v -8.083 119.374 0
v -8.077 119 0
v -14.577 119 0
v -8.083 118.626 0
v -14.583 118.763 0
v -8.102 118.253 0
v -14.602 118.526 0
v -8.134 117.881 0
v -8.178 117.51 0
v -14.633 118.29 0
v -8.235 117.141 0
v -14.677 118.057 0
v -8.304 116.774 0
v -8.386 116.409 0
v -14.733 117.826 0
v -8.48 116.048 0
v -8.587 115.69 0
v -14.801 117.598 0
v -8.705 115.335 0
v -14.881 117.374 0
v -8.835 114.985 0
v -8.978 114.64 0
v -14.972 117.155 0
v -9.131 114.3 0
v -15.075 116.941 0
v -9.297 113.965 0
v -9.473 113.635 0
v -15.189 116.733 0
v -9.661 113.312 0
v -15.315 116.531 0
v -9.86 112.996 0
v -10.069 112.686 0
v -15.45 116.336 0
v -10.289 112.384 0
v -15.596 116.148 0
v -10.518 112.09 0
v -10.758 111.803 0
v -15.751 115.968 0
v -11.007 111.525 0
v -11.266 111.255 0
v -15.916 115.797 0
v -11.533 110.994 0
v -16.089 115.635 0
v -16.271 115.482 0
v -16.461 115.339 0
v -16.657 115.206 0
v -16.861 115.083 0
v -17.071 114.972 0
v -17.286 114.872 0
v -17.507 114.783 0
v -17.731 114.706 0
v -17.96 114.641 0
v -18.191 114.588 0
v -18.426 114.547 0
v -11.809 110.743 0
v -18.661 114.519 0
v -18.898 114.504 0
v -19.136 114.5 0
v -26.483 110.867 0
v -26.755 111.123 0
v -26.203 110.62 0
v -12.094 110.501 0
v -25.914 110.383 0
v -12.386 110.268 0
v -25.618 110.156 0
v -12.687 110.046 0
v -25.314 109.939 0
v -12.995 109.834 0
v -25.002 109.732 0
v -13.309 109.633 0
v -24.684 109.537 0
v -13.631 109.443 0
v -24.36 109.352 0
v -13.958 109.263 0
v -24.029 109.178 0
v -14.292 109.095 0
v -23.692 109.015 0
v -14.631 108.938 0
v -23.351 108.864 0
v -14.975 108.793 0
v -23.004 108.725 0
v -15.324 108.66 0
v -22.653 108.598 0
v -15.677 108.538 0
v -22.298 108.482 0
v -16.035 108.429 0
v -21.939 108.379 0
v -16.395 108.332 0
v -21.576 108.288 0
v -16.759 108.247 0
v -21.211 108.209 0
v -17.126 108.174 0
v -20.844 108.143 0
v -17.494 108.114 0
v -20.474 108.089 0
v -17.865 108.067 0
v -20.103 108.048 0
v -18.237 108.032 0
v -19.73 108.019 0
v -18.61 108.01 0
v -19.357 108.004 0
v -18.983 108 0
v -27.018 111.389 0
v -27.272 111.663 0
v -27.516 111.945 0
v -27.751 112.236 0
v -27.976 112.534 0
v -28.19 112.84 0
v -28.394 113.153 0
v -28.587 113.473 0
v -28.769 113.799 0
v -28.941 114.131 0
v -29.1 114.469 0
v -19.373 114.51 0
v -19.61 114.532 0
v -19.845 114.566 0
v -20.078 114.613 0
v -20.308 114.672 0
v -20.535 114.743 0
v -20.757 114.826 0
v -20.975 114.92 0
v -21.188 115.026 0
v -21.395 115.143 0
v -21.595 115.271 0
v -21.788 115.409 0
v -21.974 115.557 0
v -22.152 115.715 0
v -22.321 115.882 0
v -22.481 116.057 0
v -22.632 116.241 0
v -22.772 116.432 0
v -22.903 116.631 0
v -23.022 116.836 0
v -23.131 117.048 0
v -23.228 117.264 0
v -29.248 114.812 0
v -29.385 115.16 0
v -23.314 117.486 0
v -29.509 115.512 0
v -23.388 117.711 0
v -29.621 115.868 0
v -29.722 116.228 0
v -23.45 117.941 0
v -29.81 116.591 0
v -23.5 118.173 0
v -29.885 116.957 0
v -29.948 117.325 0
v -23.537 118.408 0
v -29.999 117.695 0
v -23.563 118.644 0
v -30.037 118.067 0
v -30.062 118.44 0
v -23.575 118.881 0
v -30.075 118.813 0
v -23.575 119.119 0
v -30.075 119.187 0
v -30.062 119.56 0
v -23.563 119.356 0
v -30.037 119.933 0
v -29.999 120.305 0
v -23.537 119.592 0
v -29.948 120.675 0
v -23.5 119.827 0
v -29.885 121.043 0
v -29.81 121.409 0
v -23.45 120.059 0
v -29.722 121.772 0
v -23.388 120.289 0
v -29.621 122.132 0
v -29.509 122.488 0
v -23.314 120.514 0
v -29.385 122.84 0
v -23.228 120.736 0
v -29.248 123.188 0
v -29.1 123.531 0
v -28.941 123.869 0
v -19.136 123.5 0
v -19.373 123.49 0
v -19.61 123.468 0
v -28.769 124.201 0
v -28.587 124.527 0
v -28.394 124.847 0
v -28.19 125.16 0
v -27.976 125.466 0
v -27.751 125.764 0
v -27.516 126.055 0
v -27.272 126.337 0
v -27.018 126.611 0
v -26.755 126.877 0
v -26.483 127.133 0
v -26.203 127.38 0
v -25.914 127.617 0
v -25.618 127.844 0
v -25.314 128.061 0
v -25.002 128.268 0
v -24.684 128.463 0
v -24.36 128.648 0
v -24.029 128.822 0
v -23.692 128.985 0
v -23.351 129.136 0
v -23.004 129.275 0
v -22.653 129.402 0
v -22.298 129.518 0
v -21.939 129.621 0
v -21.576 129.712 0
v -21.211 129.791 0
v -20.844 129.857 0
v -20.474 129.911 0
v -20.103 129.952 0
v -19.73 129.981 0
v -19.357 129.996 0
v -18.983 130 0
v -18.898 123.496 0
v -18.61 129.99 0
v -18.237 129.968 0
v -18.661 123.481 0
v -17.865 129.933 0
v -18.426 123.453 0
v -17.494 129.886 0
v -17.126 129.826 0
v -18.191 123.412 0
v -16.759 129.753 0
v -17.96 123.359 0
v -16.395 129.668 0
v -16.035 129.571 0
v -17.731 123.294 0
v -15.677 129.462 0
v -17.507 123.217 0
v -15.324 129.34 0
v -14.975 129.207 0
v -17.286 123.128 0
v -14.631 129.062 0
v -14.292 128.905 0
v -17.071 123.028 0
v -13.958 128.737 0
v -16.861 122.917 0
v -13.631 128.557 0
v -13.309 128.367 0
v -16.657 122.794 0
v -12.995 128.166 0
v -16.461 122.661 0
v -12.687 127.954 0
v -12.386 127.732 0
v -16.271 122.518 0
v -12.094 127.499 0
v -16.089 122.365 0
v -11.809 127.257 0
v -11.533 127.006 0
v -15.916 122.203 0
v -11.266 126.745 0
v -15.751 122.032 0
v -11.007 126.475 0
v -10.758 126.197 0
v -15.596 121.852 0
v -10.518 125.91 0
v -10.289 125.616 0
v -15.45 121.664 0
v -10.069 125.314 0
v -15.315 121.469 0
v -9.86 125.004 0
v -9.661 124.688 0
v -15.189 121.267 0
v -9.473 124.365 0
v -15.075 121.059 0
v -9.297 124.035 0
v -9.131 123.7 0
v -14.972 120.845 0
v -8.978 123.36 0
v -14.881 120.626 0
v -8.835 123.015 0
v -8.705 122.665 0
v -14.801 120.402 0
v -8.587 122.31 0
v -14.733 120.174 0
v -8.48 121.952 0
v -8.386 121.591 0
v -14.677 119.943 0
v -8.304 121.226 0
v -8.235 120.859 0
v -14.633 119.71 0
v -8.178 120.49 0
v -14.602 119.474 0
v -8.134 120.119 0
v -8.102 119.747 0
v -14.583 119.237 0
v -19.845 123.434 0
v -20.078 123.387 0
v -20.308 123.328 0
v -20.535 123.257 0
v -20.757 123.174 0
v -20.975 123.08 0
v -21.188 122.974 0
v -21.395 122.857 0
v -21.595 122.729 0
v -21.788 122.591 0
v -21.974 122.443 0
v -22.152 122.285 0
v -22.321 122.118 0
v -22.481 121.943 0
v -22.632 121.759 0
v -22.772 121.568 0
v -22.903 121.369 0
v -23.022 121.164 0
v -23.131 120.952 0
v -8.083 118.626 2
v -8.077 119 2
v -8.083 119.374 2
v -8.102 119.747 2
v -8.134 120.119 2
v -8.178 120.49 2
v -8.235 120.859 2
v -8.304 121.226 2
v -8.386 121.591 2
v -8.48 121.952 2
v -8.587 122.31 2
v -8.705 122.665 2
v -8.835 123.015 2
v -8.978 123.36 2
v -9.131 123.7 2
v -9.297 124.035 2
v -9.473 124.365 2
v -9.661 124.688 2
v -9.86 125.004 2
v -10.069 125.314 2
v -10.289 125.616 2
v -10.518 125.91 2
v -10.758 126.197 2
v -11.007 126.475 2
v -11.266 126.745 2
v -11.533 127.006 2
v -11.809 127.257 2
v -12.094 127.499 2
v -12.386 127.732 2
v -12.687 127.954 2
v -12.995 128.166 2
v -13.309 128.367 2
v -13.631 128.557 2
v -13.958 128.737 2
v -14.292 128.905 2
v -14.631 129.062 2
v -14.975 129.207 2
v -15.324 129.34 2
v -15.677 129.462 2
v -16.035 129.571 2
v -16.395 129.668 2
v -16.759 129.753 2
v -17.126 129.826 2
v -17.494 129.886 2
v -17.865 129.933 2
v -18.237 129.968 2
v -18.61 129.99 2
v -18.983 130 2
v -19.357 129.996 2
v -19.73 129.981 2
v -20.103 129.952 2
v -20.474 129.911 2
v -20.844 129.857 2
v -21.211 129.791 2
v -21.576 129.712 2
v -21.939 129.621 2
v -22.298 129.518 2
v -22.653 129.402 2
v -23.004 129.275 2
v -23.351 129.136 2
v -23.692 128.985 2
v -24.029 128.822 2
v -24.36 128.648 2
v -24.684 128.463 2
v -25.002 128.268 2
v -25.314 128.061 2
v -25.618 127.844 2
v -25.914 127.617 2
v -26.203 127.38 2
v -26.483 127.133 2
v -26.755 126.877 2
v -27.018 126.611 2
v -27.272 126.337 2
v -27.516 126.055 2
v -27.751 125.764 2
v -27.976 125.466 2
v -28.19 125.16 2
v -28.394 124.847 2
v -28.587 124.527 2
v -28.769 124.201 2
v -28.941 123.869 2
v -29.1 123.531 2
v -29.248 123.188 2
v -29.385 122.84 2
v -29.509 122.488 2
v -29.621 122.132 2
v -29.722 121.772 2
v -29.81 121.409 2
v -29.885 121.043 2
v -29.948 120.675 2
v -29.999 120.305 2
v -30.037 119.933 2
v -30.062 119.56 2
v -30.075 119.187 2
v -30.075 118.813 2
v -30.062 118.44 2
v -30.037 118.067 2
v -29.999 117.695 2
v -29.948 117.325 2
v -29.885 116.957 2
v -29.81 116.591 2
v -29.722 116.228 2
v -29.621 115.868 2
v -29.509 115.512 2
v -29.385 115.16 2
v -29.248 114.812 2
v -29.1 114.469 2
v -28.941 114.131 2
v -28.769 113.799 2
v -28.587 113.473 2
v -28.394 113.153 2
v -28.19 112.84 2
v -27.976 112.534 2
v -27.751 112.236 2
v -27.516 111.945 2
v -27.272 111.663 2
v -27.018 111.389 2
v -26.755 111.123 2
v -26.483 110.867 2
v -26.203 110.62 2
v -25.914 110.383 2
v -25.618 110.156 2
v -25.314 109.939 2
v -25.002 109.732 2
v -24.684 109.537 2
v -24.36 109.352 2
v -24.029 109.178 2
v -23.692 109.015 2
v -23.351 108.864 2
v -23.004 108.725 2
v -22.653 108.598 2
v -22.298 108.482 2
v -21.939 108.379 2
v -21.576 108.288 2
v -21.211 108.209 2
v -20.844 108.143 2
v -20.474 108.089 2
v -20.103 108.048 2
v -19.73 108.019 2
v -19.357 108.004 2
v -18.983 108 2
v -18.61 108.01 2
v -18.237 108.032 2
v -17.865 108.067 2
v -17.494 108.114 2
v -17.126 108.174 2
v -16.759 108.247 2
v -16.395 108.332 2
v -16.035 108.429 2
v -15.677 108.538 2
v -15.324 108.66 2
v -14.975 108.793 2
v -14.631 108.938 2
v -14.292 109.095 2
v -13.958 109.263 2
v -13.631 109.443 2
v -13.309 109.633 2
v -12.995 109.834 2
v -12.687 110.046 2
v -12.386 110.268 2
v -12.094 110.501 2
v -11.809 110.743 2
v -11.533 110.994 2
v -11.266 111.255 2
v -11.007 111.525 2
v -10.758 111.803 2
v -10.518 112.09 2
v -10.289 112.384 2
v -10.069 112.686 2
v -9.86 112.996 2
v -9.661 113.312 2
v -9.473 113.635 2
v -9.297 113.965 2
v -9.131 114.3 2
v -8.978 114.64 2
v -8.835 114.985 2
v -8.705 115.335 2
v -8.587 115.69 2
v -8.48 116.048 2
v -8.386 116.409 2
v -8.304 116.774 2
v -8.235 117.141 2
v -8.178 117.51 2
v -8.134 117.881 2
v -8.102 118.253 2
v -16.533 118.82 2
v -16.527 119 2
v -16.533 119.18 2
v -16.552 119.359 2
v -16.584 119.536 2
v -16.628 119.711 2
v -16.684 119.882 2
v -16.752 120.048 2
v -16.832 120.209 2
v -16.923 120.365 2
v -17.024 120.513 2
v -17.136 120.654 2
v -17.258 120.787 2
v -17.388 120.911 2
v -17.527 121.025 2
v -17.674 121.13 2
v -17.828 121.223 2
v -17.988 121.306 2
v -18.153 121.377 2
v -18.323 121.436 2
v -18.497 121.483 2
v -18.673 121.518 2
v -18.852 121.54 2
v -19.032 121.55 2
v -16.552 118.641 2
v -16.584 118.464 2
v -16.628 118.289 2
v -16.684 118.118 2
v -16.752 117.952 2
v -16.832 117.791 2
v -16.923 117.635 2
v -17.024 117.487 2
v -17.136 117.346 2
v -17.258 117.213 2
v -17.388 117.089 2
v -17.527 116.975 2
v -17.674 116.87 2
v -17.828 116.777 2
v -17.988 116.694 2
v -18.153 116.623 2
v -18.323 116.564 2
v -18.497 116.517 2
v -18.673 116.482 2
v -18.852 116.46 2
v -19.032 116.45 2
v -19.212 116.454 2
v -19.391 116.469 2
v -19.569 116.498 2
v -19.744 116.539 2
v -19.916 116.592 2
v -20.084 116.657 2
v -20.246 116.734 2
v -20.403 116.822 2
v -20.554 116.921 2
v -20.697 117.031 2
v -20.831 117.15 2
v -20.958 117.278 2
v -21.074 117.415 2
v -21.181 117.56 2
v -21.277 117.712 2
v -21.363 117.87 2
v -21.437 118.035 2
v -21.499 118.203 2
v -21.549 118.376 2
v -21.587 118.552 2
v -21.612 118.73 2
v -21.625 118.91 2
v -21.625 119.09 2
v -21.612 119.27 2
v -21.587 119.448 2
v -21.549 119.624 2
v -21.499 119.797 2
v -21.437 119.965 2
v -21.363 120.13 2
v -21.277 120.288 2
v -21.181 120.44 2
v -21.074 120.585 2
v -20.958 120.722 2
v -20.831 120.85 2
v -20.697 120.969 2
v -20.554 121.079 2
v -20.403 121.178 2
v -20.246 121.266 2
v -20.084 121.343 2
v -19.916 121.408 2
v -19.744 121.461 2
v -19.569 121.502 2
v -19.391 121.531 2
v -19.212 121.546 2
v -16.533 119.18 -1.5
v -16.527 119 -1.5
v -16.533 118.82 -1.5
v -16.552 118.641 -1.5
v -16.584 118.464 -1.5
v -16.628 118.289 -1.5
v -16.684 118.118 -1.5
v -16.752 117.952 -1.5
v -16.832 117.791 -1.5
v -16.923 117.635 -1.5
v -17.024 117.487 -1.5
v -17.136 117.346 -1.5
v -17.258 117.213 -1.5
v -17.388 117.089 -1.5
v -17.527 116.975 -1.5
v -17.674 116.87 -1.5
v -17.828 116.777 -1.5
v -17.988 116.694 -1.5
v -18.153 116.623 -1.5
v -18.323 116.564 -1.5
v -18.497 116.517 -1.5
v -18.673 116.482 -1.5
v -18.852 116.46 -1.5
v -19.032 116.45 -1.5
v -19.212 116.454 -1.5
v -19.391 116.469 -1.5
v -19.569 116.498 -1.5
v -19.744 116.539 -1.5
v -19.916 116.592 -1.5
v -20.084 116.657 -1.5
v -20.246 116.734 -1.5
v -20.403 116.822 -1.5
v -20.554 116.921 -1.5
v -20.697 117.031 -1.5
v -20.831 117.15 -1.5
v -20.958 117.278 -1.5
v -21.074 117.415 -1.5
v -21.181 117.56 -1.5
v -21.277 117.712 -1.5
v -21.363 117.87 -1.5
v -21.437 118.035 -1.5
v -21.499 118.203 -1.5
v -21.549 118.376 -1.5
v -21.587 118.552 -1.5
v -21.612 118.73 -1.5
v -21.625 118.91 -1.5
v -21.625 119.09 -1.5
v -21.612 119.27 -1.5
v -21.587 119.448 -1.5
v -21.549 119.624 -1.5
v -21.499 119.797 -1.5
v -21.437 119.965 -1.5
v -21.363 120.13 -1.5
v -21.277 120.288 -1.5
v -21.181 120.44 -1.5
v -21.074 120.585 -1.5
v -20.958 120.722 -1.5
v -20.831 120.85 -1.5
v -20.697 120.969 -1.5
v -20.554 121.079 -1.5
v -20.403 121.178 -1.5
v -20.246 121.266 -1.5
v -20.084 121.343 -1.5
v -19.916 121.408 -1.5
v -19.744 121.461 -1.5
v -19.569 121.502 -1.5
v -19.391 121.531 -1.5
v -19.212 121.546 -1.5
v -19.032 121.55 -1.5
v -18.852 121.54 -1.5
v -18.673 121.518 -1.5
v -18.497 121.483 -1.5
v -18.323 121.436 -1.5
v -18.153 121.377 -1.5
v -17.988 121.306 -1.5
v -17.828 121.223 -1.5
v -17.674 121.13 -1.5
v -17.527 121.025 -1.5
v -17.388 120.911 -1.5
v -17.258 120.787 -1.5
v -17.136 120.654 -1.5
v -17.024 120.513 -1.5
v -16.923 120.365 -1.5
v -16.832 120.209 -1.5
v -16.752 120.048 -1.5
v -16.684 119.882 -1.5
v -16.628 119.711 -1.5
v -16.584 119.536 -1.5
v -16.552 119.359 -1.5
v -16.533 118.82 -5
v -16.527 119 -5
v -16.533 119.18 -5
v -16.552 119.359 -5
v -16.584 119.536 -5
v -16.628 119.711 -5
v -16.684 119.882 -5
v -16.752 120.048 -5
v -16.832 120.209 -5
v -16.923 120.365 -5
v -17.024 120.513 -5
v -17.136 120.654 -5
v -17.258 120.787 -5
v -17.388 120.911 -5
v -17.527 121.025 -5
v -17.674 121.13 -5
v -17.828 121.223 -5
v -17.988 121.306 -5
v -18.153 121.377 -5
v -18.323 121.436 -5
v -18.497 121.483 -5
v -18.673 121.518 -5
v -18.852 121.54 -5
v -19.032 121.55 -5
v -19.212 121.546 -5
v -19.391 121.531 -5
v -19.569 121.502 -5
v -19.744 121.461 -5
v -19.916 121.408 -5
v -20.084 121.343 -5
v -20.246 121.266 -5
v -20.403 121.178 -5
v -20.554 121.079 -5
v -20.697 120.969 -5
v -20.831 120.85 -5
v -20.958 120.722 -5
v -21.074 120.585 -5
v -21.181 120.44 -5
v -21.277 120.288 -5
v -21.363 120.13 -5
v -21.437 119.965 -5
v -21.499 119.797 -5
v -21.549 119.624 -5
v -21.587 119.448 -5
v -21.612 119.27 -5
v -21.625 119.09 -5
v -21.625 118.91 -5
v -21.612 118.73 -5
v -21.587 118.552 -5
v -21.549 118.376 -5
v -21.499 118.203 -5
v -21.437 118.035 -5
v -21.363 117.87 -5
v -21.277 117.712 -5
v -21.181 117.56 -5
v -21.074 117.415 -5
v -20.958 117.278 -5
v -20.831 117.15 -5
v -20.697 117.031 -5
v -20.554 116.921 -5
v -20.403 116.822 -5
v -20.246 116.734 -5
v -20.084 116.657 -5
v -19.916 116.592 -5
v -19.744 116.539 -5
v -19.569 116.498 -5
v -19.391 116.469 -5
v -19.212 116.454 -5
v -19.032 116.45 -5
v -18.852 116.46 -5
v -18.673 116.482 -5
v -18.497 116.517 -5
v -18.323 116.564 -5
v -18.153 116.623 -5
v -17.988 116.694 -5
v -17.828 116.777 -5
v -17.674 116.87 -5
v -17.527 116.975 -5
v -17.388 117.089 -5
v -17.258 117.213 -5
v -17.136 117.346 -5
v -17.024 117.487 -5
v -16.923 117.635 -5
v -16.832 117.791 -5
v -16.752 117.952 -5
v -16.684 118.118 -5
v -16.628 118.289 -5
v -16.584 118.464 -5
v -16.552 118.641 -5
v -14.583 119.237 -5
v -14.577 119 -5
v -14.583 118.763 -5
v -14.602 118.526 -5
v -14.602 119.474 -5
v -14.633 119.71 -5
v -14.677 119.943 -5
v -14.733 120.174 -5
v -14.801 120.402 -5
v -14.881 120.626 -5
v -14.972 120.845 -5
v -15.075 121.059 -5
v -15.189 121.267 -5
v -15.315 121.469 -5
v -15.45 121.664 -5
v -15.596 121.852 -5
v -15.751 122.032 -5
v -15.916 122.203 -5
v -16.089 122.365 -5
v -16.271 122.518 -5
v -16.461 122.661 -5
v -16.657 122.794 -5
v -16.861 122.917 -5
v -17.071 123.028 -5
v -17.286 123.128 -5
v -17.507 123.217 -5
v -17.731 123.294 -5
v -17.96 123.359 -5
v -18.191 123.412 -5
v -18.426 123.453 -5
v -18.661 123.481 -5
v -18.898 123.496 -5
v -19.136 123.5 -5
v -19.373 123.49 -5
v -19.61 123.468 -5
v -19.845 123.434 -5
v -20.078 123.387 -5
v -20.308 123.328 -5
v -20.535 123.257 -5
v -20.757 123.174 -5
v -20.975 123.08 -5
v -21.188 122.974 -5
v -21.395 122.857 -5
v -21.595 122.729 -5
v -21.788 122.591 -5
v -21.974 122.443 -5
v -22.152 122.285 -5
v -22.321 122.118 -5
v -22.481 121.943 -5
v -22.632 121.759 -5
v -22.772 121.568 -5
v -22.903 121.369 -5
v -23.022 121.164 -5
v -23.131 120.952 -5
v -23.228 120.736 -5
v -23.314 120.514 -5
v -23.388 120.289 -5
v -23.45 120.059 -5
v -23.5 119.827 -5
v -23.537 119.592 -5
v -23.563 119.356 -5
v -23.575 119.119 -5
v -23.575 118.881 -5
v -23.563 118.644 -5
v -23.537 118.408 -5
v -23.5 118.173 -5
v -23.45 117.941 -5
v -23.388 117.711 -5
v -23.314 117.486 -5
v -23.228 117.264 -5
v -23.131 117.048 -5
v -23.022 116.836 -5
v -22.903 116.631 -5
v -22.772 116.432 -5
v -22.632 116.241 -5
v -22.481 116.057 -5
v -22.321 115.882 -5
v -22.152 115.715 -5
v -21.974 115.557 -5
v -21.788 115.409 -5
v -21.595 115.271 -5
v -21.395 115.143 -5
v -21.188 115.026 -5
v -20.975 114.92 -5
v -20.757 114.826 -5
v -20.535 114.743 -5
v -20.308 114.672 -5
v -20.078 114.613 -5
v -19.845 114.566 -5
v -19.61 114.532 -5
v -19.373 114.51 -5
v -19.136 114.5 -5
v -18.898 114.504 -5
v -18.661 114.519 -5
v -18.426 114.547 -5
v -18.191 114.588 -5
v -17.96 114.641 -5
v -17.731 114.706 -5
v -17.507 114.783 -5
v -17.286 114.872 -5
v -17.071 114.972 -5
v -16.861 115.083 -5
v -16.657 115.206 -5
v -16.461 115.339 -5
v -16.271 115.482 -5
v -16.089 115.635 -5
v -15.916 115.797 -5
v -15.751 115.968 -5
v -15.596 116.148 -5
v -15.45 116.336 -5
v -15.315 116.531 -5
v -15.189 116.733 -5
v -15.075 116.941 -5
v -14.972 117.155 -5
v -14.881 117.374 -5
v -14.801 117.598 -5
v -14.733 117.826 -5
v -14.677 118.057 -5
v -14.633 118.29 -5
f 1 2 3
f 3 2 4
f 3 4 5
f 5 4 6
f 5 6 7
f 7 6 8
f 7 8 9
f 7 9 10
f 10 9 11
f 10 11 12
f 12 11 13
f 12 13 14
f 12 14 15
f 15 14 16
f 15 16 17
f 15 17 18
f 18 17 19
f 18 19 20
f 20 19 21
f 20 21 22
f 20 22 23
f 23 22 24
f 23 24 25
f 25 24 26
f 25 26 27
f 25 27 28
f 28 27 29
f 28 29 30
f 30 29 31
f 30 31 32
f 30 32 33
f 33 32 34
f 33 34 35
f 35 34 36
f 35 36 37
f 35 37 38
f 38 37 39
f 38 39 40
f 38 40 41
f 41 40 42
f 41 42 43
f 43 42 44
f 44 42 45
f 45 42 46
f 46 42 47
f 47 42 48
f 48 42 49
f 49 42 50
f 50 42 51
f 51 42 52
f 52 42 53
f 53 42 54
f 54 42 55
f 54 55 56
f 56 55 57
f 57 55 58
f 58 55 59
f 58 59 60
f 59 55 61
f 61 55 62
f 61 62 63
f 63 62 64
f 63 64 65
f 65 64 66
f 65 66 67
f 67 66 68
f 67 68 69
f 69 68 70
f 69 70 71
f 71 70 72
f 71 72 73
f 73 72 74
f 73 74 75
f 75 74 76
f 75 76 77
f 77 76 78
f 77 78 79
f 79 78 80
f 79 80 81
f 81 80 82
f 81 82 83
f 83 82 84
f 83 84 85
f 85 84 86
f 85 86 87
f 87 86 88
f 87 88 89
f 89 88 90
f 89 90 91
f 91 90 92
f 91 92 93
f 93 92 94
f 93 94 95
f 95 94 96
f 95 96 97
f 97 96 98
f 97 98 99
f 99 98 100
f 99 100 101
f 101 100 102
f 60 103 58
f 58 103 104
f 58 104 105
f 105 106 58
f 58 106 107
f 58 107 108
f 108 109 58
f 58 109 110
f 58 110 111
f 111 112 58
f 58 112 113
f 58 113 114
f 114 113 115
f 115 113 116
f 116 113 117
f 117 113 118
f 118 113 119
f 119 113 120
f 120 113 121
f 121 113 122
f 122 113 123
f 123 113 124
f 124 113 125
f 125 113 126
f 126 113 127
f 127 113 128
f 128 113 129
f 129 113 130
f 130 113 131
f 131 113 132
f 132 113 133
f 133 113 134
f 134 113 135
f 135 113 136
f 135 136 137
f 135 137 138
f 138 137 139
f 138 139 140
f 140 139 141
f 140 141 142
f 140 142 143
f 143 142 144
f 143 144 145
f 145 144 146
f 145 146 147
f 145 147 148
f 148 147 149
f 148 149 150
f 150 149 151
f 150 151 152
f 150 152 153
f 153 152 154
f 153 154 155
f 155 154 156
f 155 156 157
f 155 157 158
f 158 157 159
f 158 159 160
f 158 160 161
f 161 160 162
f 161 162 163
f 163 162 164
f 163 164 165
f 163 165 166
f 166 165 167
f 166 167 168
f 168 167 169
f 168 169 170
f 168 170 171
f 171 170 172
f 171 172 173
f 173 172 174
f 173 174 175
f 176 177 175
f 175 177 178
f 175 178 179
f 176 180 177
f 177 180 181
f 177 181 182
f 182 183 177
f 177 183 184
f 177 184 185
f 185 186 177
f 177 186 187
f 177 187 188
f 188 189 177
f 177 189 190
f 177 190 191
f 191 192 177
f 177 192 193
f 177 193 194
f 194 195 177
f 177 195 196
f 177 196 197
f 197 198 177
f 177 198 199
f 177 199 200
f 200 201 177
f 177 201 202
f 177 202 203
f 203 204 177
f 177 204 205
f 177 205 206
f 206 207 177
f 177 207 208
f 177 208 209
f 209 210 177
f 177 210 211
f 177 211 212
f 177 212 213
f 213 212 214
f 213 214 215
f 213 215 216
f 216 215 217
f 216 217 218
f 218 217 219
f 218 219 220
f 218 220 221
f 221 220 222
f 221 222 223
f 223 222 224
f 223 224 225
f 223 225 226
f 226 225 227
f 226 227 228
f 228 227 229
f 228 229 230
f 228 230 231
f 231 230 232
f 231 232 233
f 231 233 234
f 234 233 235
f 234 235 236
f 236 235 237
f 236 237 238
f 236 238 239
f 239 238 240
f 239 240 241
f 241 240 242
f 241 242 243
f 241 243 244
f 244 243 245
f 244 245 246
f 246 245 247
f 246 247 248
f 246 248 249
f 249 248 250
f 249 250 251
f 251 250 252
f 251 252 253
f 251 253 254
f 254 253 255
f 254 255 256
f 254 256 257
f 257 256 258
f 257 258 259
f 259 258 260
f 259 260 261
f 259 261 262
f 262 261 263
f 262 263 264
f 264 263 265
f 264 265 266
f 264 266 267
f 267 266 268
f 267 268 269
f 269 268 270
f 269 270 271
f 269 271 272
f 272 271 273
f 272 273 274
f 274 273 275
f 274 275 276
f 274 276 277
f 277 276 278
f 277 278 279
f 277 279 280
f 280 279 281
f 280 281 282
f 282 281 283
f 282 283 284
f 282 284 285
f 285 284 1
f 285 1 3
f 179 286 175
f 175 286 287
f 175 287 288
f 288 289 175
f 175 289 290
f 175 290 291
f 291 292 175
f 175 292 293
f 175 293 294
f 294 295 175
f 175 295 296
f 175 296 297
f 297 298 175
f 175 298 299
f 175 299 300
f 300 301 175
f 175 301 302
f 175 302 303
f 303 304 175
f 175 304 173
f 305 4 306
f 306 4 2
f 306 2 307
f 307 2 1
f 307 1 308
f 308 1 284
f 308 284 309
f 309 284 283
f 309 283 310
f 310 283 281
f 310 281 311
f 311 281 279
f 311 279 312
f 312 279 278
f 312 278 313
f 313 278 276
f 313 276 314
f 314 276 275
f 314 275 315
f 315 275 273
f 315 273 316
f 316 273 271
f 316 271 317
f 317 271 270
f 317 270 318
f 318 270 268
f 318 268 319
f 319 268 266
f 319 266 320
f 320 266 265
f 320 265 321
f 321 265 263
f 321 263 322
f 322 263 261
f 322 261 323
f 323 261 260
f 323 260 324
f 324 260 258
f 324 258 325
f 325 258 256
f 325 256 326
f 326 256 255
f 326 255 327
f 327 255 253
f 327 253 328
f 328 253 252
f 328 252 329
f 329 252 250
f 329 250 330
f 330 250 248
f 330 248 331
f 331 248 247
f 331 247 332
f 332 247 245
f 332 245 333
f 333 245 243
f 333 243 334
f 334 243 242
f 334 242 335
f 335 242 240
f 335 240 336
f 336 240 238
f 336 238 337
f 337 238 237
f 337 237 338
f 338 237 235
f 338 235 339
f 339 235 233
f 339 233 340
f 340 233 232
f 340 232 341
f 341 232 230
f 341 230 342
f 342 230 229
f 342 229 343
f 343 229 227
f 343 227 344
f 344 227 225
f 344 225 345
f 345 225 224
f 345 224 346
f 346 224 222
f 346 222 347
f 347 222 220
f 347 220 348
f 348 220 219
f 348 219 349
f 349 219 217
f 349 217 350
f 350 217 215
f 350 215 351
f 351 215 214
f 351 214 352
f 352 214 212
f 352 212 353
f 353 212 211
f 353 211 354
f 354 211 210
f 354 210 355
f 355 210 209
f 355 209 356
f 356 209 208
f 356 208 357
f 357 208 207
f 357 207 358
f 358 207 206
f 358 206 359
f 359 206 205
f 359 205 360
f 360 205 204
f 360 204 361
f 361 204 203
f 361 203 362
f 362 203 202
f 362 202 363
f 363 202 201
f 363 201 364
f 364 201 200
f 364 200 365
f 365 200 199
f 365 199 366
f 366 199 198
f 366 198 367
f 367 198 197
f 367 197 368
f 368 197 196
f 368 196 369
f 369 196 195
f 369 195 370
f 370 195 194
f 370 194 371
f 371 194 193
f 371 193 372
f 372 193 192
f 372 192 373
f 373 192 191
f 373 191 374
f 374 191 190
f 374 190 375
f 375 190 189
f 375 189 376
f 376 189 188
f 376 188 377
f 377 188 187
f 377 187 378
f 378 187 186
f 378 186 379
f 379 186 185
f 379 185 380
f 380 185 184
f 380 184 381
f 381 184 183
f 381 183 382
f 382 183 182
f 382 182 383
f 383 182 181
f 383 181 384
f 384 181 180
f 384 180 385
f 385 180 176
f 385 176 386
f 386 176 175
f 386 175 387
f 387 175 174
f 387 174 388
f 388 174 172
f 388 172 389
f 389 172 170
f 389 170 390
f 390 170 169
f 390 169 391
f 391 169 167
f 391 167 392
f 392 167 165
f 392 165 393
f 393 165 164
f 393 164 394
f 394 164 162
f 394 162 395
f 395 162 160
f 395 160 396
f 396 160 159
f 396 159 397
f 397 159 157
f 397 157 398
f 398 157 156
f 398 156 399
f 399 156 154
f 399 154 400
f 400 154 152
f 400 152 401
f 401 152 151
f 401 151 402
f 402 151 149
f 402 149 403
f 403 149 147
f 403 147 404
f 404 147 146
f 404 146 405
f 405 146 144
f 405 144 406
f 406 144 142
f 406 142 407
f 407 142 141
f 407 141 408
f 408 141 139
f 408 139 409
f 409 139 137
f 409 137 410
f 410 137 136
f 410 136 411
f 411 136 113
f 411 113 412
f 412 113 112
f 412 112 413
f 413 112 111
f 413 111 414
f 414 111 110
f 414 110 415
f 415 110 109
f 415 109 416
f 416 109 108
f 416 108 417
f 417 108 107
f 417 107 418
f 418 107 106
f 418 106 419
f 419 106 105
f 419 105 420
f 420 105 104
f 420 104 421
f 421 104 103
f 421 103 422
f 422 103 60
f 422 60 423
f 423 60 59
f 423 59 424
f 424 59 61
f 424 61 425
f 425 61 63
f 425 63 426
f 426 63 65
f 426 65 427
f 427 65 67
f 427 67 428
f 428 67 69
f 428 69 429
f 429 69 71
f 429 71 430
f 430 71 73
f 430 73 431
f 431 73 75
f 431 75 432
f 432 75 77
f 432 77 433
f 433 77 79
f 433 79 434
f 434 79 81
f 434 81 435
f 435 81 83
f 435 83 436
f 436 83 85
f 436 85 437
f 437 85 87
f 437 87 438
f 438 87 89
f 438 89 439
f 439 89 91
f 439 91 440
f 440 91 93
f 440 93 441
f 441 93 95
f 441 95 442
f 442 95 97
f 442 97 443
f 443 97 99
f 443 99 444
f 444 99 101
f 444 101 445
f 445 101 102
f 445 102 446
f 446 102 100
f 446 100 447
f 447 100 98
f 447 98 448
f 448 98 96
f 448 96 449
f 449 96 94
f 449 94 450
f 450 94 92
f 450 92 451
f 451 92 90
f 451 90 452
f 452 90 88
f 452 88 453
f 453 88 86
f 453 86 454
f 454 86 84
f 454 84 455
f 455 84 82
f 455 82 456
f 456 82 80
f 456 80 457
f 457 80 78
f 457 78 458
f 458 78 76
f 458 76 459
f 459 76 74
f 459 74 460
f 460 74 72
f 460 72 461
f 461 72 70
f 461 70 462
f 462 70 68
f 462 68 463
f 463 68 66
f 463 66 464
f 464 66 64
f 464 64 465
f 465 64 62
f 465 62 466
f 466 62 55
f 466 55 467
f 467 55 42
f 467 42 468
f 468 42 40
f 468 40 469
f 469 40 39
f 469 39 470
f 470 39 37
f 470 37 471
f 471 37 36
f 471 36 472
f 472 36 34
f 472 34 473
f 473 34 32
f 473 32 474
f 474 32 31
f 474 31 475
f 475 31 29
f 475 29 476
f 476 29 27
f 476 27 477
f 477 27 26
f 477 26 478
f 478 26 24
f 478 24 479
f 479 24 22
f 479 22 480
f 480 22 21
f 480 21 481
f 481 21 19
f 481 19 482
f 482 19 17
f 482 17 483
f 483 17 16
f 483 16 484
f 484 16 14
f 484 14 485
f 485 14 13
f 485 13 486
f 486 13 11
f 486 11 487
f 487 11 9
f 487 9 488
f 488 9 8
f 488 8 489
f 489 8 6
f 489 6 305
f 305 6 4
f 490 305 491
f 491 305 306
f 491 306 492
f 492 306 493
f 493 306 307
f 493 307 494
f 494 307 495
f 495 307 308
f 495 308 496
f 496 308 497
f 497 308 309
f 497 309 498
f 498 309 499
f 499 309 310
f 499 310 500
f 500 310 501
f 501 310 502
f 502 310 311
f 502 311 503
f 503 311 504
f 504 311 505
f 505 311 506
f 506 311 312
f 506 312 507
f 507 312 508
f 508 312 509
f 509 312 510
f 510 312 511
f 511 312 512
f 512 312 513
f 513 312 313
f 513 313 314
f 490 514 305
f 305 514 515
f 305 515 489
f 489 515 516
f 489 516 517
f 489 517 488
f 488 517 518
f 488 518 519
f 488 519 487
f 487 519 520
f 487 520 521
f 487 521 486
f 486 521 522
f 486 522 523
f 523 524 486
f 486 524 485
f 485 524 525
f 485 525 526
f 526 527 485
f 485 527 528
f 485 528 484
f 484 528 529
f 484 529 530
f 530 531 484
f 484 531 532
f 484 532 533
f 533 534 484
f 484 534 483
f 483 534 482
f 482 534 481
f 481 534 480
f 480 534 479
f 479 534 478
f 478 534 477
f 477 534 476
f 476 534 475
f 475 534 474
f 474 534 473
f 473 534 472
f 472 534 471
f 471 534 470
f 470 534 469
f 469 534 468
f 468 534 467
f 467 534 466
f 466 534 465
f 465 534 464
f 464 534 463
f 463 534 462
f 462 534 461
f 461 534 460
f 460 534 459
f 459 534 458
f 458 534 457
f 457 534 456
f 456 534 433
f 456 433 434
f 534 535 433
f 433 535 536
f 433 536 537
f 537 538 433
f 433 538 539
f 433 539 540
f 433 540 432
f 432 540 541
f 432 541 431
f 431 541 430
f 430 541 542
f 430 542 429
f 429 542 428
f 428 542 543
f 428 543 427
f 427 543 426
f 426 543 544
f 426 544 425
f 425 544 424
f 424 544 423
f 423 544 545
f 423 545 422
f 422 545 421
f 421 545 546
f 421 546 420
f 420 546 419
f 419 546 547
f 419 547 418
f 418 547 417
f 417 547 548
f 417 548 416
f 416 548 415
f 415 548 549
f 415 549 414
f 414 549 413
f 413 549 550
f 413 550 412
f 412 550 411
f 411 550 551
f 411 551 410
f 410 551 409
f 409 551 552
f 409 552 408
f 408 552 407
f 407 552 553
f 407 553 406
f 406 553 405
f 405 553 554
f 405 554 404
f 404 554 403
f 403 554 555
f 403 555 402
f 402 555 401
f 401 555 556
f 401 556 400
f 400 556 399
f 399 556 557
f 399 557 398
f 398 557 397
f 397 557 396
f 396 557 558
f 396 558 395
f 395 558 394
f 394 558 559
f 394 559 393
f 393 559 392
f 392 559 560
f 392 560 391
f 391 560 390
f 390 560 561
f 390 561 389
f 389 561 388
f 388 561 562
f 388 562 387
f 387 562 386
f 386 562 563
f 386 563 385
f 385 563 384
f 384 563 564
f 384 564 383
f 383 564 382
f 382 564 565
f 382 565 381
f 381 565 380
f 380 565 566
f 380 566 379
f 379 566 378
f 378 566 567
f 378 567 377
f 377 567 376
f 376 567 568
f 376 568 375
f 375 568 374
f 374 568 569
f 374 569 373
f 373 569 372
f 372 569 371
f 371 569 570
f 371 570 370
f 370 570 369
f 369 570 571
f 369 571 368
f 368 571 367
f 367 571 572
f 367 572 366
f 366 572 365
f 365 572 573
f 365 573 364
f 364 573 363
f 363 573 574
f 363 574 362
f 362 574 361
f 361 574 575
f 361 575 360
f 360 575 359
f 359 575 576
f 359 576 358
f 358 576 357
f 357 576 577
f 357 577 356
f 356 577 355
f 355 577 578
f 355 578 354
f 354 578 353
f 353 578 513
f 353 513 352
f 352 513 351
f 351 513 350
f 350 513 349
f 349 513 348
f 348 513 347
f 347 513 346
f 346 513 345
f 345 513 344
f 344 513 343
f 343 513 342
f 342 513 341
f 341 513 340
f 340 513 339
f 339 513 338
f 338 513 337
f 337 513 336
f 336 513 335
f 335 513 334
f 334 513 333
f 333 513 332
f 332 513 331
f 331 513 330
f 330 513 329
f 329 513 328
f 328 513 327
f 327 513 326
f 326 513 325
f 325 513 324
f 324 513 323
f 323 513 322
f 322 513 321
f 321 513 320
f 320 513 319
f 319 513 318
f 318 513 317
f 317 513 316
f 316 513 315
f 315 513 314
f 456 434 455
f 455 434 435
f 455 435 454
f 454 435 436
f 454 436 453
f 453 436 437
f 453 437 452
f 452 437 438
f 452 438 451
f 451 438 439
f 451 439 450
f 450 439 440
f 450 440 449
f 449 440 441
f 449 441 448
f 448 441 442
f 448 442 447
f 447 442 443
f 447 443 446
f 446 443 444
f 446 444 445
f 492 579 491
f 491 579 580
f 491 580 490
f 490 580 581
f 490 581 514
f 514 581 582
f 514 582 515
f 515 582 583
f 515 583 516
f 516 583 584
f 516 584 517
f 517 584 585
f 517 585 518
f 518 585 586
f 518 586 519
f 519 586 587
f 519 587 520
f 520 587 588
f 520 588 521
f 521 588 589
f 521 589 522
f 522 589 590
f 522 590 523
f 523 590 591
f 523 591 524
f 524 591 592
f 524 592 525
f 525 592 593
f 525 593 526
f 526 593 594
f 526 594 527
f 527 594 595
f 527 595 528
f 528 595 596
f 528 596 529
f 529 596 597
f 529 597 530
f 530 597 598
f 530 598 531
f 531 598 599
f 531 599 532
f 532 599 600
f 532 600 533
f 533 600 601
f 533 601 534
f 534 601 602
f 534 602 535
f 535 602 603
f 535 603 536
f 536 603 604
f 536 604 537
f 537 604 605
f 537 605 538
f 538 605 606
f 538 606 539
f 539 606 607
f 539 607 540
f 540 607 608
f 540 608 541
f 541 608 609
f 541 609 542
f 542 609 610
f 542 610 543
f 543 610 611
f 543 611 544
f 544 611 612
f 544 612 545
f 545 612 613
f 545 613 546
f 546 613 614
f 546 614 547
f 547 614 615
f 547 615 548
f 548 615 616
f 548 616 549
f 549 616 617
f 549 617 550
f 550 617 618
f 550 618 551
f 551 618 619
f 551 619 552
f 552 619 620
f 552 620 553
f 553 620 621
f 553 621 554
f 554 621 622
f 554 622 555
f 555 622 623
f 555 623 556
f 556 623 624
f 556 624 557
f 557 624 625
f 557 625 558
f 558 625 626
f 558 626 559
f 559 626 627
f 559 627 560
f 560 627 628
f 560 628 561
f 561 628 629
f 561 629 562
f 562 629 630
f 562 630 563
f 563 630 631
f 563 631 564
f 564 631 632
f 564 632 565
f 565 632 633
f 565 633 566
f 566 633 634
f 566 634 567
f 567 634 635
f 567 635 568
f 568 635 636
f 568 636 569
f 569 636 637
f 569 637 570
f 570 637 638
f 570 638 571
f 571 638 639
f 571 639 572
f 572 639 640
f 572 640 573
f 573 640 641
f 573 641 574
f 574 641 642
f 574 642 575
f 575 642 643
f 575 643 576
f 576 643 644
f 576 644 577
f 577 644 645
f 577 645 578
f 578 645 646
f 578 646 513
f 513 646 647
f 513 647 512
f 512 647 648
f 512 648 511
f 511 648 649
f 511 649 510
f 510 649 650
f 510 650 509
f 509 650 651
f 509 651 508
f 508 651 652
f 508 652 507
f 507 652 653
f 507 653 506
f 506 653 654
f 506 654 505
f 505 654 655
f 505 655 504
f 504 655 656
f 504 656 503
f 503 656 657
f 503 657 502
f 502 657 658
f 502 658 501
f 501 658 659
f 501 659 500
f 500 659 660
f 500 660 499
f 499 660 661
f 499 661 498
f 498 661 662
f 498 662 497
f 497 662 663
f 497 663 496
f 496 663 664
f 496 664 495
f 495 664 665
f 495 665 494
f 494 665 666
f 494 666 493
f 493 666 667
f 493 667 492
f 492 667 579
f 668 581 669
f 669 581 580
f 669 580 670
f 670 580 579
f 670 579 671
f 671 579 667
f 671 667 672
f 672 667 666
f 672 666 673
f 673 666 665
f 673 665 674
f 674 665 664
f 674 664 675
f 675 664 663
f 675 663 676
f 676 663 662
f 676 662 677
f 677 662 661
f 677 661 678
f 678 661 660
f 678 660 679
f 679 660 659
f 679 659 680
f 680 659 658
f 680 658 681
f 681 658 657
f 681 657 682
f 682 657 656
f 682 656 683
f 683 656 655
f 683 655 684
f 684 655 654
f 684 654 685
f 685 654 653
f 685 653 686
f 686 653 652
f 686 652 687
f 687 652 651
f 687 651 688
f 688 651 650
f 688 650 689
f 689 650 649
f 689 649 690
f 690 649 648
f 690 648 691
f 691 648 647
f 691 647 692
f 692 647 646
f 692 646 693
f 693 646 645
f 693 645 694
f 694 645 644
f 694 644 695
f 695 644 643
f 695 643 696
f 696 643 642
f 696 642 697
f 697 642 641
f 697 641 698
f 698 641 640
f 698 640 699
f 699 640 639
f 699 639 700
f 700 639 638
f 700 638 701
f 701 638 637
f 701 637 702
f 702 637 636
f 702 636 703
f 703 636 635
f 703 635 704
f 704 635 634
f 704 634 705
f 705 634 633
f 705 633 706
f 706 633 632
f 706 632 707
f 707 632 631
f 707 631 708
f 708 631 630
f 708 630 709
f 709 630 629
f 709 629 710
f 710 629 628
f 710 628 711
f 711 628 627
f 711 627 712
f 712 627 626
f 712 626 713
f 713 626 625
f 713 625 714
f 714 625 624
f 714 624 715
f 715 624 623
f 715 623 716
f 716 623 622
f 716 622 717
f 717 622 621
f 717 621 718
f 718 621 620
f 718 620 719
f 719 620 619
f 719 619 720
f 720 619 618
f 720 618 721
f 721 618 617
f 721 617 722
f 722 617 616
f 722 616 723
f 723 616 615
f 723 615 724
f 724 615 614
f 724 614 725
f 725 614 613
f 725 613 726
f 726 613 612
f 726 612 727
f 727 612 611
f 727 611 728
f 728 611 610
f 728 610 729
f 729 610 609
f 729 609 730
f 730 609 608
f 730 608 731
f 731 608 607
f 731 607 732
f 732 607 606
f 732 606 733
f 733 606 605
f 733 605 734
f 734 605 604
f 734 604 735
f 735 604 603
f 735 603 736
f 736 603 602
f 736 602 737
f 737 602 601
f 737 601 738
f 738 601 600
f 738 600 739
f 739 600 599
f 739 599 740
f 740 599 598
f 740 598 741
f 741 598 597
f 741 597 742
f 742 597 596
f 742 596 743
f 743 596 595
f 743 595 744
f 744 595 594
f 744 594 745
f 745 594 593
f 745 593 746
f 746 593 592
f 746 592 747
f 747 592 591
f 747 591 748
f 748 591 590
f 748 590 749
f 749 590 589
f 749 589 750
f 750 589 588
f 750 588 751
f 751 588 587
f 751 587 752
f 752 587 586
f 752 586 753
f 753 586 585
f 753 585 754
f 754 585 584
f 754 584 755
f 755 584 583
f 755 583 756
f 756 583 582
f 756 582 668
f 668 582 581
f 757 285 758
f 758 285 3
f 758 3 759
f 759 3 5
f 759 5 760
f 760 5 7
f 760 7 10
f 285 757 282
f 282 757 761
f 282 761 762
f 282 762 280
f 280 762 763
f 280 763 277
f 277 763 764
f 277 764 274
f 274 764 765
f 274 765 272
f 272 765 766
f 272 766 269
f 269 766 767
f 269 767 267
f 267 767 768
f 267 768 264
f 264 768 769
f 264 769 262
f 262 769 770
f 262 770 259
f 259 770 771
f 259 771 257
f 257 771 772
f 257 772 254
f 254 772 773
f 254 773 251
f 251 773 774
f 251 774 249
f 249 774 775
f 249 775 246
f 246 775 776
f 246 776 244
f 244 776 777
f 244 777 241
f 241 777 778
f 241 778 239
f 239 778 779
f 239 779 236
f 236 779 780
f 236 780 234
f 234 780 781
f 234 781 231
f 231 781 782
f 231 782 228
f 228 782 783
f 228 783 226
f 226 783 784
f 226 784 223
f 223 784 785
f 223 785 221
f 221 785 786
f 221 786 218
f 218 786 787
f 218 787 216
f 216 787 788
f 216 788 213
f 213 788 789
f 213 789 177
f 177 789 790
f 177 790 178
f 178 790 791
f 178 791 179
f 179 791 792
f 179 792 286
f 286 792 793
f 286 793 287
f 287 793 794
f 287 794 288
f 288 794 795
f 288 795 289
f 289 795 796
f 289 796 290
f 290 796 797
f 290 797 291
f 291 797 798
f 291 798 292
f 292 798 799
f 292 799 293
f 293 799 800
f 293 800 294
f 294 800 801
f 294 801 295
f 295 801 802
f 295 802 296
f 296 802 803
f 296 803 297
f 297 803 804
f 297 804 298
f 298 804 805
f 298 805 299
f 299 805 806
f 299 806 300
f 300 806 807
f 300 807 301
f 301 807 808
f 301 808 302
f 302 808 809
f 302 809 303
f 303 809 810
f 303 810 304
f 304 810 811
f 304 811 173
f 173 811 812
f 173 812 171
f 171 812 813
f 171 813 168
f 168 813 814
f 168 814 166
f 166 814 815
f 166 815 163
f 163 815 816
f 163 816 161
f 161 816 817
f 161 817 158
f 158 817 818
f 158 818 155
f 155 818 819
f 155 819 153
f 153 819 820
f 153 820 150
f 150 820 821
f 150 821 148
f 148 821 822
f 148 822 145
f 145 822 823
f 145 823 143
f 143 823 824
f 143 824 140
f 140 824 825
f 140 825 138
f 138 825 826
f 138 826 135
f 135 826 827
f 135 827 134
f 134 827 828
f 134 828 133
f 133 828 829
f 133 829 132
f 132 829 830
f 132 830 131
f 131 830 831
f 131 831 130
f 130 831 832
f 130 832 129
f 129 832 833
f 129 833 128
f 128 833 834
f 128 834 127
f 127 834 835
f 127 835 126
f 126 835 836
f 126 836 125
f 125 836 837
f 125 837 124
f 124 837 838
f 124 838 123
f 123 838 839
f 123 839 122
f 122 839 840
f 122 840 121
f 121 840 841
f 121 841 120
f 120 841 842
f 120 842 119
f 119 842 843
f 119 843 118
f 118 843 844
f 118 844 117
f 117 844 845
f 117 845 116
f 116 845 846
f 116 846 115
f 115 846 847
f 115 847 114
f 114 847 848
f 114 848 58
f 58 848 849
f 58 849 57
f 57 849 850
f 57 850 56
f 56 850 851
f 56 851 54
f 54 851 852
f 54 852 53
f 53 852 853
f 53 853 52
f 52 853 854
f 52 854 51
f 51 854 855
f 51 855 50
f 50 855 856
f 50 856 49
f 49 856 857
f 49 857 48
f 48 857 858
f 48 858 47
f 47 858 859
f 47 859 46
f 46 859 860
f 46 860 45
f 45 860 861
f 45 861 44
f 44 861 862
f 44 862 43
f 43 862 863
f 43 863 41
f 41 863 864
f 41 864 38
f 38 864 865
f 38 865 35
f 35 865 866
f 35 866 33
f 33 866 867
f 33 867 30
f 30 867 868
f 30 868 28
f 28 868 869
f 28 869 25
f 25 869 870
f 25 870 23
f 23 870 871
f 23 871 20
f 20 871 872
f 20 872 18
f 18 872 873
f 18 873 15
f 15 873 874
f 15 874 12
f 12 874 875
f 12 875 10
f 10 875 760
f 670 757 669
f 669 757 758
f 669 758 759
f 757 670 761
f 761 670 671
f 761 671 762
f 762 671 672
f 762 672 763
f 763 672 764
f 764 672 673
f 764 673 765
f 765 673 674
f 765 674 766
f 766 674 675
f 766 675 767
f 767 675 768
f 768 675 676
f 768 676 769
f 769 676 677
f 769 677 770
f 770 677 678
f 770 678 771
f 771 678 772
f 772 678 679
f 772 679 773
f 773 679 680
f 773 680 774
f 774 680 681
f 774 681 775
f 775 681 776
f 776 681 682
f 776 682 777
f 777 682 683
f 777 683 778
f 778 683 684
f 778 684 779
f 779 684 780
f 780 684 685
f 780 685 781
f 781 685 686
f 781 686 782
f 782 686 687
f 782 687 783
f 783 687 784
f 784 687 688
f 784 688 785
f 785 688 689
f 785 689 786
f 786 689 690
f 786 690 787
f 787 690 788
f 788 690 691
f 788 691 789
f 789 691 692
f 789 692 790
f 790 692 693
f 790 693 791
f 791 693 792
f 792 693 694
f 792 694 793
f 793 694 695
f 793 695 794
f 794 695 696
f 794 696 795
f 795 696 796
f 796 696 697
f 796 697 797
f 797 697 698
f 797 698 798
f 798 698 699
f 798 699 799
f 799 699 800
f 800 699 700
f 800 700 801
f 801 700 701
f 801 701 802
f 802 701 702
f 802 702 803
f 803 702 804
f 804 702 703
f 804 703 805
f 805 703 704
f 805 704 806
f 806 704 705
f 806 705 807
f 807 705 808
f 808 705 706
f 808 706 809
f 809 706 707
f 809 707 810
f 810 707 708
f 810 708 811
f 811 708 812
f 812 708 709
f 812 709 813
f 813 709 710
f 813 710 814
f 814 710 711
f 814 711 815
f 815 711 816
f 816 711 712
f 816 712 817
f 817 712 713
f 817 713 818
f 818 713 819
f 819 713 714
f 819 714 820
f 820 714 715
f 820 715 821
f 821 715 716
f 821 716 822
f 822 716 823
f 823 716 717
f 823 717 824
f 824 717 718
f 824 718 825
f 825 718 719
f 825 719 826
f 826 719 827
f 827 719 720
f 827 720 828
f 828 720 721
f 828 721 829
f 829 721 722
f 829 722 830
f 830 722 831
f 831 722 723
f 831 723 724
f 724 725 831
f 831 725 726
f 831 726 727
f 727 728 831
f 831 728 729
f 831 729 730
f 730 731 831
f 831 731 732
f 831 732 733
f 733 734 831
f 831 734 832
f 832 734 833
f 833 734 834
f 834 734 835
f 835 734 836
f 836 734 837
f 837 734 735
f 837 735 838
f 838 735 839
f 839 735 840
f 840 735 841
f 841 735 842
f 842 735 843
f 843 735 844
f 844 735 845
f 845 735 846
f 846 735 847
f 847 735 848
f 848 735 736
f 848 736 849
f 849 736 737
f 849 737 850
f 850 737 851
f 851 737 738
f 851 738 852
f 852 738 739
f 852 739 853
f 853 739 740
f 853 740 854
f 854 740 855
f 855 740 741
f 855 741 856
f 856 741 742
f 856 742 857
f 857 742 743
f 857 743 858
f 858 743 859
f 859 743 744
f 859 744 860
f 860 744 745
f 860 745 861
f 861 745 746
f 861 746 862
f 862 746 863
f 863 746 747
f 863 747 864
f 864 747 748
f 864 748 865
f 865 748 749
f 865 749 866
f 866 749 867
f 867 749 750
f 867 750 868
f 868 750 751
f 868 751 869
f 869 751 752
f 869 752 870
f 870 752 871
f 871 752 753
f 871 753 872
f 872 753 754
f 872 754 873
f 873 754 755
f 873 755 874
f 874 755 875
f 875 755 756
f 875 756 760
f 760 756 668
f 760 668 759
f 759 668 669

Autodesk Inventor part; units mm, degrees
ref_plane "YZ Plane" through (0, 0, 0) normal (1, 0, 0) x (0, 1, 0)
ref_plane "XZ Plane" through (0, 0, 0) normal (0, 1, 0) x (-1, 0, 0)
ref_plane "XY Plane" through (0, 0, 0) normal (0, 0, 1) x (1, 0, 0)
ref_plane "Work Plane1" through (0, 0, 0) normal (0, 0, 1) x (1, 0, 0)
sketch "Sketch1" plane through (0, 0, 0) normal (0, 0, 1) x (1, 0, 0)
  circle A0 centre (-19.0766, 119) radius 8 projected
  circle A1 centre (-19.0766, 119) radius 4.5
  circle A2 centre (-19.0766, 119) radius 2.55
  point P0 (0, 0)
  dimension "d0" = 9
  dimension "d1" = 5.1
extrude "Extrusion1" add sketch "Sketch1" against normal blind 5 contours A1
sketch "Sketch2" plane through (-19.0766, 119, 0) normal (0, 0, 1) x (1, 0, 0)
  circle A0 centre (0, 0) radius 2.55 projected
  circle A1 centre (0, 0) radius 11
  point P0 (19.0766, -119)
  dimension "d4" = 22
extrude "Extrusion2" add sketch "Sketch2" along normal blind 2
properties part number "13_Fluorescence_Arm_LEDholder"
